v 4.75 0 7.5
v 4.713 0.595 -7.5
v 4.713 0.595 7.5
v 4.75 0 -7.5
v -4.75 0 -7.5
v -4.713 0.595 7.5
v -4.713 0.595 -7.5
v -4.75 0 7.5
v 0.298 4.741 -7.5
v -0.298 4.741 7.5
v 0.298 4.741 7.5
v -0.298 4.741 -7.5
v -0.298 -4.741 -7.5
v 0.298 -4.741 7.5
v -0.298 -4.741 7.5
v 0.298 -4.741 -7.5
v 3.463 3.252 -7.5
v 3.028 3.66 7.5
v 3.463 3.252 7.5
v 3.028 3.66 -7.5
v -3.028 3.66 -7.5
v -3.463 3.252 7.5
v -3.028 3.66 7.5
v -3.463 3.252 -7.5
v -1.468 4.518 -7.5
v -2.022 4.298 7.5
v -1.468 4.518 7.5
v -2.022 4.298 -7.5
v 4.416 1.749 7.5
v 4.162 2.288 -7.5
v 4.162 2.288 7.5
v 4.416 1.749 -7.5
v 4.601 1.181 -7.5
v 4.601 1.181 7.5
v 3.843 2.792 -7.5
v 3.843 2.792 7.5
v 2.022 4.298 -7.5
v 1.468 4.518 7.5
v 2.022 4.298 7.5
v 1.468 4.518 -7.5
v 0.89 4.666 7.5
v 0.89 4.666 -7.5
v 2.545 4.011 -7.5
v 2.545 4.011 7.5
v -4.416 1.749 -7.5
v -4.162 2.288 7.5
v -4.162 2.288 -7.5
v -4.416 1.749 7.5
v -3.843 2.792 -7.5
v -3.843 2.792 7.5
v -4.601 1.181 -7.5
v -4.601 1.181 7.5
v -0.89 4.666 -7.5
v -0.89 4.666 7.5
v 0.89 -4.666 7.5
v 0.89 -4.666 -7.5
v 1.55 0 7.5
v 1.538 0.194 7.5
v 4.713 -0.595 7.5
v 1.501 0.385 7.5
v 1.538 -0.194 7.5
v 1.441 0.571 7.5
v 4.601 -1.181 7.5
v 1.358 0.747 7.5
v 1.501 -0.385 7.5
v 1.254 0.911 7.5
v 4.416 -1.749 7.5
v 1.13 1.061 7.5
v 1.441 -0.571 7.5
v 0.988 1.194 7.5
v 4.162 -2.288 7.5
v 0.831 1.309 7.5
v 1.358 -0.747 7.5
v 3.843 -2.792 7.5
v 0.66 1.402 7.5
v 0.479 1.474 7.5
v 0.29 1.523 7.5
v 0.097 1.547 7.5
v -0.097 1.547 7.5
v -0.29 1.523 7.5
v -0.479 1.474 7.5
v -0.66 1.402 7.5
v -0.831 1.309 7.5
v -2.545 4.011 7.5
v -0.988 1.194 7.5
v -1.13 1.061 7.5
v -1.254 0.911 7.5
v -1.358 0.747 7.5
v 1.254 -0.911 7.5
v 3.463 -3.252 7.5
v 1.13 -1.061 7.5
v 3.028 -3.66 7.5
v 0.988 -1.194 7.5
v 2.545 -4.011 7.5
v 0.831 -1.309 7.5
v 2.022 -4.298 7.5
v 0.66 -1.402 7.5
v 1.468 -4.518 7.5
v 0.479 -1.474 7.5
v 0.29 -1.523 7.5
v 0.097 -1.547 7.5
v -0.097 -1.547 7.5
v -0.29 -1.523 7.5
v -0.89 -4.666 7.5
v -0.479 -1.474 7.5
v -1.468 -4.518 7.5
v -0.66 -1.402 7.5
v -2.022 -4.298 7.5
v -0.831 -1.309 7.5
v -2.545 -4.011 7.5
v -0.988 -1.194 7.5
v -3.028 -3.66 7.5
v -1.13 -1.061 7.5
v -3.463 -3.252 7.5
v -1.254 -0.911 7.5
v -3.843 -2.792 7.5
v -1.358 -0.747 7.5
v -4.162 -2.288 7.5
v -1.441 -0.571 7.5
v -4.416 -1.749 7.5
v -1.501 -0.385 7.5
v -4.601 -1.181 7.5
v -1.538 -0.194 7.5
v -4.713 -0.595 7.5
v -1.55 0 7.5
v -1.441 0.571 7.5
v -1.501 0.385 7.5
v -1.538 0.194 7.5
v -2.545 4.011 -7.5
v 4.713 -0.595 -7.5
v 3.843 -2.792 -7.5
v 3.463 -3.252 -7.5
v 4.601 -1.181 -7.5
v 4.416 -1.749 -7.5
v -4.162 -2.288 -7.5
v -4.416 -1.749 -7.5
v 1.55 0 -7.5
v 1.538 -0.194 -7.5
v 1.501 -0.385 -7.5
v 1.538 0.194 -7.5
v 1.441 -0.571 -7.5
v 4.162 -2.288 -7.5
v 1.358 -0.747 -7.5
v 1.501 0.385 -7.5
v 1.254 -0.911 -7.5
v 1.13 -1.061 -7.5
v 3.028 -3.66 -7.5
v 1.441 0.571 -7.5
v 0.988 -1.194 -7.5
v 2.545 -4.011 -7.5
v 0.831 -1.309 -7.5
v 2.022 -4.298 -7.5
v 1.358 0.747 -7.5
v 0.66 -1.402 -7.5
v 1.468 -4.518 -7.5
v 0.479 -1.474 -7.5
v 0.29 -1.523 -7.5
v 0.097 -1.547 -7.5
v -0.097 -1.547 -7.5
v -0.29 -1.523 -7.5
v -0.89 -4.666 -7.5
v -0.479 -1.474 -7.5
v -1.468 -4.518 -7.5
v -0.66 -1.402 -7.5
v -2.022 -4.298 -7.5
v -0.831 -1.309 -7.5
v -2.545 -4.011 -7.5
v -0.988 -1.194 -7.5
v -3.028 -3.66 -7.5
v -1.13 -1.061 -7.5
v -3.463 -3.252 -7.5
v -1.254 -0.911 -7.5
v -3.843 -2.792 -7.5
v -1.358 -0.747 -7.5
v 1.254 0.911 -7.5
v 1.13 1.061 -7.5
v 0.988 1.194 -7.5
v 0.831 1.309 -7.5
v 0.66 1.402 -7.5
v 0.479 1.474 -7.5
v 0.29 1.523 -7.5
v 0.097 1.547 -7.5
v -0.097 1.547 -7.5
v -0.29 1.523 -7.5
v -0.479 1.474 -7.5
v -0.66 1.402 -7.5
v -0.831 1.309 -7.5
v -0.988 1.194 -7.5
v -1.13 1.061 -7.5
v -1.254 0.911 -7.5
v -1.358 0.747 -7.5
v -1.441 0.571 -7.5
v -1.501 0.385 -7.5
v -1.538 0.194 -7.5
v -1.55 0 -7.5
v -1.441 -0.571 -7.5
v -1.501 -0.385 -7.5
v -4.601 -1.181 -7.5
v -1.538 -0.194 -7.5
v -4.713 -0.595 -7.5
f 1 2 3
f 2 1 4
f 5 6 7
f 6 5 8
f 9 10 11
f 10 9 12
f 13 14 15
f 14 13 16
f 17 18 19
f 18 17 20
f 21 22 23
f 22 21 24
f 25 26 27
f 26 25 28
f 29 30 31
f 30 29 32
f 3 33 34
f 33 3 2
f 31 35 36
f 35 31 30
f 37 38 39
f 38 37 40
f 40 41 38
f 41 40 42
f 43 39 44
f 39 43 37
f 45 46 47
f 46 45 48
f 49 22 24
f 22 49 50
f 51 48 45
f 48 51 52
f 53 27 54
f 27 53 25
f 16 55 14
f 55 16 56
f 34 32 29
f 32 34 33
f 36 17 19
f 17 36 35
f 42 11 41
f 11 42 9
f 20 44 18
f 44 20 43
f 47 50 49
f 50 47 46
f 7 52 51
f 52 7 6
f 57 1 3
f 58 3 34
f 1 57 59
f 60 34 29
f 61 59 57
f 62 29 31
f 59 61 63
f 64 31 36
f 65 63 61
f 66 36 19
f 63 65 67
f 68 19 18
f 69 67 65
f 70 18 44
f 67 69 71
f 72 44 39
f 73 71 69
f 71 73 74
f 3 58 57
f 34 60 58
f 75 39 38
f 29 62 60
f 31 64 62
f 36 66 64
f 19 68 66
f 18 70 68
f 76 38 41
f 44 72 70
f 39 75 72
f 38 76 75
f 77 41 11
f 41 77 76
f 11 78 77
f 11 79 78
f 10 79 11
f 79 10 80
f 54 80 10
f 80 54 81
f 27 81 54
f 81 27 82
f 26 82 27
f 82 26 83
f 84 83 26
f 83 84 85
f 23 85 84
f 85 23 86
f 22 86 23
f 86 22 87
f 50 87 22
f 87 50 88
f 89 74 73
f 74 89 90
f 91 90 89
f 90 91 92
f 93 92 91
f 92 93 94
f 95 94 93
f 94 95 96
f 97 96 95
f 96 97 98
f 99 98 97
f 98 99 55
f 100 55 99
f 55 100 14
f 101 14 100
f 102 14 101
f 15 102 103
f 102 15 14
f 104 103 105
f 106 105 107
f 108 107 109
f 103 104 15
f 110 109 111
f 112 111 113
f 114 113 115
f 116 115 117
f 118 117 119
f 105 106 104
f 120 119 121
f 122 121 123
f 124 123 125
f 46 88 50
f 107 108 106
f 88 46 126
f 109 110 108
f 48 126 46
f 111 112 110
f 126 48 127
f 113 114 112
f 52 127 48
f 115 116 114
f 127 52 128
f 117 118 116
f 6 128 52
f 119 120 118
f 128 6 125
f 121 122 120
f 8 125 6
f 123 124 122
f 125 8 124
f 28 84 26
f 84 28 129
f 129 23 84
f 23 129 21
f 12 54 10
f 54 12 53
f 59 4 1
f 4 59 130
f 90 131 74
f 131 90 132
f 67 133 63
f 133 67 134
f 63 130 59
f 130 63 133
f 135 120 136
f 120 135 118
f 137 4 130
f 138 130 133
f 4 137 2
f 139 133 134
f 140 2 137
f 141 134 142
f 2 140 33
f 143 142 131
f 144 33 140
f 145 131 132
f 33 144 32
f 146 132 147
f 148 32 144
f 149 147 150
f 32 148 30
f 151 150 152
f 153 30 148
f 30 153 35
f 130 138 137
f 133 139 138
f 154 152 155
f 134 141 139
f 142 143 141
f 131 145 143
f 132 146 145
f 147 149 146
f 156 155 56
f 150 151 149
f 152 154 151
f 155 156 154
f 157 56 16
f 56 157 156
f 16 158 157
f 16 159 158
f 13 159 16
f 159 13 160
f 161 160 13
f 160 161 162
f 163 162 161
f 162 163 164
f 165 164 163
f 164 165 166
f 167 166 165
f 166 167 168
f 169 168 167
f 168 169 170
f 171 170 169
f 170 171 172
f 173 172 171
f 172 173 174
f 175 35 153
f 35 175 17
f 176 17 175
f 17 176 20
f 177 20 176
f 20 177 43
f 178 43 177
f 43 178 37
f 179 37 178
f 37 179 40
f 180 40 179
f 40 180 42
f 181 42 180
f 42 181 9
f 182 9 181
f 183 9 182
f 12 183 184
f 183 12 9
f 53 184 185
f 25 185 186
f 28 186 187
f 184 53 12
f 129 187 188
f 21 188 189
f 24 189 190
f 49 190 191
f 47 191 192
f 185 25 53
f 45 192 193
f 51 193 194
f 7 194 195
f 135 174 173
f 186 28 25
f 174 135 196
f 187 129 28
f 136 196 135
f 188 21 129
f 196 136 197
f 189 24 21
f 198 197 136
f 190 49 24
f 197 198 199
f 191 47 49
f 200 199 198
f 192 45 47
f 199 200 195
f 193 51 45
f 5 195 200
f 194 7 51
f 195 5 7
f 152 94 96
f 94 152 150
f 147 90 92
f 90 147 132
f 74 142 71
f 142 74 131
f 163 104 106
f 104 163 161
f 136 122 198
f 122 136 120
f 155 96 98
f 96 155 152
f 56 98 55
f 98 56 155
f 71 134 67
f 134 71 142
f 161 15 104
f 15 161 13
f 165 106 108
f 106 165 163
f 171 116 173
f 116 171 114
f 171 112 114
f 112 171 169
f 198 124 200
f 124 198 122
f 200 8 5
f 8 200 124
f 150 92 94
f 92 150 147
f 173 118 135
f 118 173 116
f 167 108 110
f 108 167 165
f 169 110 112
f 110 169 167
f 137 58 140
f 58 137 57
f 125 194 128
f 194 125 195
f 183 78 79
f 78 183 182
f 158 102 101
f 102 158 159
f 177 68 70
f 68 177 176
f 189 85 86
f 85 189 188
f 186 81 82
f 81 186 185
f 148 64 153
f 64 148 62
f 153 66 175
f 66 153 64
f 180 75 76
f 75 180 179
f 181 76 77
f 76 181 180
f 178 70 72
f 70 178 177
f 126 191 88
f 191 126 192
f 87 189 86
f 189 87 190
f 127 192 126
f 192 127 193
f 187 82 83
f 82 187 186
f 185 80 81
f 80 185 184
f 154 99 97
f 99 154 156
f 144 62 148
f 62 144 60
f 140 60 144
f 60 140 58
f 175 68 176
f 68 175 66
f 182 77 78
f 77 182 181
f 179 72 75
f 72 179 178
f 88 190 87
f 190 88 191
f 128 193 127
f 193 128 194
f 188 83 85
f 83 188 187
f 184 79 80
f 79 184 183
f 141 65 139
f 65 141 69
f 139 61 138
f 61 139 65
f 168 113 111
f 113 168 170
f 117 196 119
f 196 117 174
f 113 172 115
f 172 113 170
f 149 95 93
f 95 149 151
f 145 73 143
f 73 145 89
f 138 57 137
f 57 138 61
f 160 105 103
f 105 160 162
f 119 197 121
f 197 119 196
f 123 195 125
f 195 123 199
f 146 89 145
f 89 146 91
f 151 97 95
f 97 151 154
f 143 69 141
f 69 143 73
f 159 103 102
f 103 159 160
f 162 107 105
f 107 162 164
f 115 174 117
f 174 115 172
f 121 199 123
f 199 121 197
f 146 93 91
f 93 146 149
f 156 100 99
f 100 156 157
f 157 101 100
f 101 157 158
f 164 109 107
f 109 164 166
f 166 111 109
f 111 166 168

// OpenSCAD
$fn = 50;


difference() {
	union() {
		translate(v = [0, 0, -7.5000000000]) {
			cylinder(h = 15, r = 4.7500000000);
		}
	}
	union() {
		translate(v = [0, 0, -100.0000000000]) {
			cylinder(h = 200, r = 1.5500000000);
		}
	}
}
